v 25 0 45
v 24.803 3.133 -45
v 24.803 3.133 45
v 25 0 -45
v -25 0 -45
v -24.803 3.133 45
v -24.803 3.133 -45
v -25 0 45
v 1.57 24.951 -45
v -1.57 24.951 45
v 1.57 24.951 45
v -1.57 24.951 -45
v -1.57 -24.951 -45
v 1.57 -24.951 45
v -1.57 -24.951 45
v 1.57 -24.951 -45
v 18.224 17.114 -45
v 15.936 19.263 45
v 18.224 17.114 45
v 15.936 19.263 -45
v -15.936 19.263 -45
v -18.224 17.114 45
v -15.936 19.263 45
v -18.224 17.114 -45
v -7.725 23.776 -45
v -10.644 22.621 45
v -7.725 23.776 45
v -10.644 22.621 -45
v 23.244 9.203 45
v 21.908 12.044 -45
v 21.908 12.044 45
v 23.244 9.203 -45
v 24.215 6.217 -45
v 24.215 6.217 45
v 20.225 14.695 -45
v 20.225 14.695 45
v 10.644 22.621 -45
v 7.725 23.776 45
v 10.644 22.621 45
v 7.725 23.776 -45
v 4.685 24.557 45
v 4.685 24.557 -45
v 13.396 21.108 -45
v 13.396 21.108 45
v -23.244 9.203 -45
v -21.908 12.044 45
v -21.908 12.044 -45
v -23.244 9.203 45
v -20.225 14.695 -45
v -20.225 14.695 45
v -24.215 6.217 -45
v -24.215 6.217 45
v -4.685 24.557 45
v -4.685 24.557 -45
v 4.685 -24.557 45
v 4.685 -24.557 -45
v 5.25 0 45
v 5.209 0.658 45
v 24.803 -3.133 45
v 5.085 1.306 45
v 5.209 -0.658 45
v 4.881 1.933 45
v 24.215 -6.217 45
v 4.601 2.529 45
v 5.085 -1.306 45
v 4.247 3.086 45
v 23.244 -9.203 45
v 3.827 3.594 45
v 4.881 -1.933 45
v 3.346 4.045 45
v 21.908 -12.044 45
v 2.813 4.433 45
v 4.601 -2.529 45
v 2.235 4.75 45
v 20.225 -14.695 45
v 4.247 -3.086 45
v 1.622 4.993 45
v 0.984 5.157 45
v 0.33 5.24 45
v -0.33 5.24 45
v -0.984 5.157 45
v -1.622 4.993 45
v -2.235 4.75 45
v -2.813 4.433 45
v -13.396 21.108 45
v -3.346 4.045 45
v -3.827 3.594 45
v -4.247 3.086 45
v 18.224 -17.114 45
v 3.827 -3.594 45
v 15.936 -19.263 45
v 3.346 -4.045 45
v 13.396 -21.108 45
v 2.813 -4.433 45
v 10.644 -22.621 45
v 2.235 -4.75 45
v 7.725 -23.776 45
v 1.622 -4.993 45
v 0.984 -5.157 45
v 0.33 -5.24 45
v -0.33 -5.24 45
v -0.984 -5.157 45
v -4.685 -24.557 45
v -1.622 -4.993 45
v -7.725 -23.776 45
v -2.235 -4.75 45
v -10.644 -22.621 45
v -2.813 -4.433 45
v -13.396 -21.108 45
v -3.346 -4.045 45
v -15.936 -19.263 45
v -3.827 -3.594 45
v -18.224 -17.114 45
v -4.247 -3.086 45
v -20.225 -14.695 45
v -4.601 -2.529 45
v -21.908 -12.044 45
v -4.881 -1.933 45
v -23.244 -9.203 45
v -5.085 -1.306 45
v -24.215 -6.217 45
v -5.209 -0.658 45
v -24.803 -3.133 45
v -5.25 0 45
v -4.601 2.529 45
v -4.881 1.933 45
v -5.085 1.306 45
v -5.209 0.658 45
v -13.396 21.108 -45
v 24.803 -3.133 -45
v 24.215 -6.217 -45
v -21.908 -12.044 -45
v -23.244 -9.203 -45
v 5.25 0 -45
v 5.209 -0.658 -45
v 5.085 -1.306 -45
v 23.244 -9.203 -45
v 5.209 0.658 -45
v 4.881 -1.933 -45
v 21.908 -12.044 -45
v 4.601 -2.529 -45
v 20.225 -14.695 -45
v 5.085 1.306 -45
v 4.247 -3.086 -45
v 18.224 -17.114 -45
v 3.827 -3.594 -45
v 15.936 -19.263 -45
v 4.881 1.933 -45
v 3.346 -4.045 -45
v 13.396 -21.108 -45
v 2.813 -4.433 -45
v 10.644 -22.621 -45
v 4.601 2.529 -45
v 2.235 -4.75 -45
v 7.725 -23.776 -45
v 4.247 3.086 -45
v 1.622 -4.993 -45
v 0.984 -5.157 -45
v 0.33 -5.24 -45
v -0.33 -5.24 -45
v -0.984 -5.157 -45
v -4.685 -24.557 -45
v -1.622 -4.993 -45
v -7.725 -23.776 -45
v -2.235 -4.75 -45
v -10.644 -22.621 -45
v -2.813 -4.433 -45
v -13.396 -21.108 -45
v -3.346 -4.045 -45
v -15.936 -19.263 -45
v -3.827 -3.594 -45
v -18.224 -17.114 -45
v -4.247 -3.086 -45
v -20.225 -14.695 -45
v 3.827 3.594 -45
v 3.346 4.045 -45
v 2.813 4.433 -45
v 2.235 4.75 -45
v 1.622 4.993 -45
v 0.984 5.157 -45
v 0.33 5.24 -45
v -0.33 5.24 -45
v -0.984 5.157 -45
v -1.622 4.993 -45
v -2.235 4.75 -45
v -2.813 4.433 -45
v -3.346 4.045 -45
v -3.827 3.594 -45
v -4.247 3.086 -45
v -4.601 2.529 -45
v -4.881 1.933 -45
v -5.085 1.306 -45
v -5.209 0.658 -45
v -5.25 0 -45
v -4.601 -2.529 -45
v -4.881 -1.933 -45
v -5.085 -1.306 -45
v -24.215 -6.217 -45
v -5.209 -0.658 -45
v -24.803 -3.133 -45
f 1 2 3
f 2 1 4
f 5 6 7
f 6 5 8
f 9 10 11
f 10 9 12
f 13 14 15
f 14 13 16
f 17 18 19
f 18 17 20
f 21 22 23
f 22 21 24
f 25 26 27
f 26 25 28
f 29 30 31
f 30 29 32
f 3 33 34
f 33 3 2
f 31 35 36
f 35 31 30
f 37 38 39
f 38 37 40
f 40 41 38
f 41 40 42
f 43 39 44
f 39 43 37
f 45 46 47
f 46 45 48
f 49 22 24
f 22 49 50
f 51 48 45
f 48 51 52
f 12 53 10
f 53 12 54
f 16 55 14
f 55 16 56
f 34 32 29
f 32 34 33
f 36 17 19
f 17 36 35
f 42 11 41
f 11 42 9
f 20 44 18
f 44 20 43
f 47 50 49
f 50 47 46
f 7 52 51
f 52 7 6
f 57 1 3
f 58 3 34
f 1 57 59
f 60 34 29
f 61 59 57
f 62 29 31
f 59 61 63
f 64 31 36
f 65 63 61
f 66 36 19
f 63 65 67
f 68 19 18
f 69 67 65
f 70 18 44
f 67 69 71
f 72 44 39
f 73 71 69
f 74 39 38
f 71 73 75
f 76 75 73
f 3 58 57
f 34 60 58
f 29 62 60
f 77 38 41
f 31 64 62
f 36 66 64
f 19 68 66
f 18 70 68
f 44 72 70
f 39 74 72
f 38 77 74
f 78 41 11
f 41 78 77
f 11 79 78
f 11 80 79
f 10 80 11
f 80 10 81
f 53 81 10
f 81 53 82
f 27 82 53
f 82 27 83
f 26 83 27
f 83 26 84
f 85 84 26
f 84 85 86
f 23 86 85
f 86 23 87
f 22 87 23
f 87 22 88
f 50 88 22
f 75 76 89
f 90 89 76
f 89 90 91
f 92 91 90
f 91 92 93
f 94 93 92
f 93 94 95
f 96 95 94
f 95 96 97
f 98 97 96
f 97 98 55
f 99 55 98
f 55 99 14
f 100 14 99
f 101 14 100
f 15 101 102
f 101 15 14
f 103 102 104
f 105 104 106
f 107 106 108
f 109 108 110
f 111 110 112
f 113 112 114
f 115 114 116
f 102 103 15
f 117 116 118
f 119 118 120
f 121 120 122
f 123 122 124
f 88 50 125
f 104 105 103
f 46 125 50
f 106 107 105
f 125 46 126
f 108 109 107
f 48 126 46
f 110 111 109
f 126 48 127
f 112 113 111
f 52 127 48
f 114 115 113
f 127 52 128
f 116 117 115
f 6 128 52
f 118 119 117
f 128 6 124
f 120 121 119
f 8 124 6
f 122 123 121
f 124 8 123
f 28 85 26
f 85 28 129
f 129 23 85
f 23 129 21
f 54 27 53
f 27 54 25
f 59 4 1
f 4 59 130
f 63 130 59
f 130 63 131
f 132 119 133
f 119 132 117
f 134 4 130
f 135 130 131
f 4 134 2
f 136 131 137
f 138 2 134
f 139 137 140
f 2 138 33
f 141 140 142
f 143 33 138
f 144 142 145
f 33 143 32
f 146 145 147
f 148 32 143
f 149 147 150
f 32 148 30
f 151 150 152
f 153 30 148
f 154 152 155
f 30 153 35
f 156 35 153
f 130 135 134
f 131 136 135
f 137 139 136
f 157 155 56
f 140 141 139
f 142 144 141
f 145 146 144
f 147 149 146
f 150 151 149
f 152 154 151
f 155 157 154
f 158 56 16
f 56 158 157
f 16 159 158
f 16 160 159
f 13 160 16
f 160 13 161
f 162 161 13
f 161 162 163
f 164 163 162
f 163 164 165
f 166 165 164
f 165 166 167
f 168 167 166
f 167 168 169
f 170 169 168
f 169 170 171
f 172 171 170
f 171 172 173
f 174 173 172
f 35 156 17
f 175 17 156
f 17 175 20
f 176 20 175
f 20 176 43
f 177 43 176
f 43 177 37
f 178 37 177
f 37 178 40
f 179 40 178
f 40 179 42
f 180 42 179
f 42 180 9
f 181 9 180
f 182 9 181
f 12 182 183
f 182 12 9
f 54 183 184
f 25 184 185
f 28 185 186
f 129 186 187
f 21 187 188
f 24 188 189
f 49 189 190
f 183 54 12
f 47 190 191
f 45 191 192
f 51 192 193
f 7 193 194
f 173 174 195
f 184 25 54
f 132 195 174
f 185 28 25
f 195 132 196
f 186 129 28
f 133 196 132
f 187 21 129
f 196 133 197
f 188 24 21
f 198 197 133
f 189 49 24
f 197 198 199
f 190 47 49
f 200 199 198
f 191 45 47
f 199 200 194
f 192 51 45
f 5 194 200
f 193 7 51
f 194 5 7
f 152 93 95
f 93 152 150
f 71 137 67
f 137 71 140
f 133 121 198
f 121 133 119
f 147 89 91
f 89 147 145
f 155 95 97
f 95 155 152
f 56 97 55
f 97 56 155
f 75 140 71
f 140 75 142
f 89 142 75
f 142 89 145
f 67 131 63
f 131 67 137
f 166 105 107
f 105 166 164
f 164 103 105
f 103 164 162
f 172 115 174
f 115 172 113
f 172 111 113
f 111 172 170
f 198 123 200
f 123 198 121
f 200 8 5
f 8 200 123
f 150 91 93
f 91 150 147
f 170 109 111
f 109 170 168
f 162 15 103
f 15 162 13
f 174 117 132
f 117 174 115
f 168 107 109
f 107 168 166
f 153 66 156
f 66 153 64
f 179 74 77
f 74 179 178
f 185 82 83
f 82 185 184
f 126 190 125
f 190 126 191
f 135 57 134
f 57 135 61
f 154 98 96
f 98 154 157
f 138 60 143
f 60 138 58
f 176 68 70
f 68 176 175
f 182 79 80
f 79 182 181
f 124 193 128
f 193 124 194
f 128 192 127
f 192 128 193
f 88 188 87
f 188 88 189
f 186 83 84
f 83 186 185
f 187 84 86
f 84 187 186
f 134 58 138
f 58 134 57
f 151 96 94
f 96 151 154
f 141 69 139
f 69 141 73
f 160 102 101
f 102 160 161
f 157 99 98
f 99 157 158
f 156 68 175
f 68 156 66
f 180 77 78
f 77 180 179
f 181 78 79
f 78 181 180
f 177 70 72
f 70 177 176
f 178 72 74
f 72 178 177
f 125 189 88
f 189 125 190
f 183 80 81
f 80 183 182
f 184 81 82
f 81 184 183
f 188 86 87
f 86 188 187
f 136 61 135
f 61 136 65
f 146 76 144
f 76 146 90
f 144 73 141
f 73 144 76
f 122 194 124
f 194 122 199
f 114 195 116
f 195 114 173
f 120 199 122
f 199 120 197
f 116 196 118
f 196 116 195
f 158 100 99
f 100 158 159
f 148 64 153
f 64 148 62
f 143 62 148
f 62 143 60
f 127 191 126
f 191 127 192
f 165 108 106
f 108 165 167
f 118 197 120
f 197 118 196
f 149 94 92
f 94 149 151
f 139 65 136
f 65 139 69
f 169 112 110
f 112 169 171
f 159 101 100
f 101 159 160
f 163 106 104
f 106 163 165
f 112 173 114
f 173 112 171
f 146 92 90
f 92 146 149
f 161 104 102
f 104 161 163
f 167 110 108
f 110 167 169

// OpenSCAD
$fn = 50;


difference() {
	union() {
		translate(v = [0, 0, -45.0000000000]) {
			cylinder(h = 90, r = 25.0000000000);
		}
	}
	union() {
		translate(v = [0, 0, -100.0000000000]) {
			cylinder(h = 200, r = 5.2500000000);
		}
	}
}
